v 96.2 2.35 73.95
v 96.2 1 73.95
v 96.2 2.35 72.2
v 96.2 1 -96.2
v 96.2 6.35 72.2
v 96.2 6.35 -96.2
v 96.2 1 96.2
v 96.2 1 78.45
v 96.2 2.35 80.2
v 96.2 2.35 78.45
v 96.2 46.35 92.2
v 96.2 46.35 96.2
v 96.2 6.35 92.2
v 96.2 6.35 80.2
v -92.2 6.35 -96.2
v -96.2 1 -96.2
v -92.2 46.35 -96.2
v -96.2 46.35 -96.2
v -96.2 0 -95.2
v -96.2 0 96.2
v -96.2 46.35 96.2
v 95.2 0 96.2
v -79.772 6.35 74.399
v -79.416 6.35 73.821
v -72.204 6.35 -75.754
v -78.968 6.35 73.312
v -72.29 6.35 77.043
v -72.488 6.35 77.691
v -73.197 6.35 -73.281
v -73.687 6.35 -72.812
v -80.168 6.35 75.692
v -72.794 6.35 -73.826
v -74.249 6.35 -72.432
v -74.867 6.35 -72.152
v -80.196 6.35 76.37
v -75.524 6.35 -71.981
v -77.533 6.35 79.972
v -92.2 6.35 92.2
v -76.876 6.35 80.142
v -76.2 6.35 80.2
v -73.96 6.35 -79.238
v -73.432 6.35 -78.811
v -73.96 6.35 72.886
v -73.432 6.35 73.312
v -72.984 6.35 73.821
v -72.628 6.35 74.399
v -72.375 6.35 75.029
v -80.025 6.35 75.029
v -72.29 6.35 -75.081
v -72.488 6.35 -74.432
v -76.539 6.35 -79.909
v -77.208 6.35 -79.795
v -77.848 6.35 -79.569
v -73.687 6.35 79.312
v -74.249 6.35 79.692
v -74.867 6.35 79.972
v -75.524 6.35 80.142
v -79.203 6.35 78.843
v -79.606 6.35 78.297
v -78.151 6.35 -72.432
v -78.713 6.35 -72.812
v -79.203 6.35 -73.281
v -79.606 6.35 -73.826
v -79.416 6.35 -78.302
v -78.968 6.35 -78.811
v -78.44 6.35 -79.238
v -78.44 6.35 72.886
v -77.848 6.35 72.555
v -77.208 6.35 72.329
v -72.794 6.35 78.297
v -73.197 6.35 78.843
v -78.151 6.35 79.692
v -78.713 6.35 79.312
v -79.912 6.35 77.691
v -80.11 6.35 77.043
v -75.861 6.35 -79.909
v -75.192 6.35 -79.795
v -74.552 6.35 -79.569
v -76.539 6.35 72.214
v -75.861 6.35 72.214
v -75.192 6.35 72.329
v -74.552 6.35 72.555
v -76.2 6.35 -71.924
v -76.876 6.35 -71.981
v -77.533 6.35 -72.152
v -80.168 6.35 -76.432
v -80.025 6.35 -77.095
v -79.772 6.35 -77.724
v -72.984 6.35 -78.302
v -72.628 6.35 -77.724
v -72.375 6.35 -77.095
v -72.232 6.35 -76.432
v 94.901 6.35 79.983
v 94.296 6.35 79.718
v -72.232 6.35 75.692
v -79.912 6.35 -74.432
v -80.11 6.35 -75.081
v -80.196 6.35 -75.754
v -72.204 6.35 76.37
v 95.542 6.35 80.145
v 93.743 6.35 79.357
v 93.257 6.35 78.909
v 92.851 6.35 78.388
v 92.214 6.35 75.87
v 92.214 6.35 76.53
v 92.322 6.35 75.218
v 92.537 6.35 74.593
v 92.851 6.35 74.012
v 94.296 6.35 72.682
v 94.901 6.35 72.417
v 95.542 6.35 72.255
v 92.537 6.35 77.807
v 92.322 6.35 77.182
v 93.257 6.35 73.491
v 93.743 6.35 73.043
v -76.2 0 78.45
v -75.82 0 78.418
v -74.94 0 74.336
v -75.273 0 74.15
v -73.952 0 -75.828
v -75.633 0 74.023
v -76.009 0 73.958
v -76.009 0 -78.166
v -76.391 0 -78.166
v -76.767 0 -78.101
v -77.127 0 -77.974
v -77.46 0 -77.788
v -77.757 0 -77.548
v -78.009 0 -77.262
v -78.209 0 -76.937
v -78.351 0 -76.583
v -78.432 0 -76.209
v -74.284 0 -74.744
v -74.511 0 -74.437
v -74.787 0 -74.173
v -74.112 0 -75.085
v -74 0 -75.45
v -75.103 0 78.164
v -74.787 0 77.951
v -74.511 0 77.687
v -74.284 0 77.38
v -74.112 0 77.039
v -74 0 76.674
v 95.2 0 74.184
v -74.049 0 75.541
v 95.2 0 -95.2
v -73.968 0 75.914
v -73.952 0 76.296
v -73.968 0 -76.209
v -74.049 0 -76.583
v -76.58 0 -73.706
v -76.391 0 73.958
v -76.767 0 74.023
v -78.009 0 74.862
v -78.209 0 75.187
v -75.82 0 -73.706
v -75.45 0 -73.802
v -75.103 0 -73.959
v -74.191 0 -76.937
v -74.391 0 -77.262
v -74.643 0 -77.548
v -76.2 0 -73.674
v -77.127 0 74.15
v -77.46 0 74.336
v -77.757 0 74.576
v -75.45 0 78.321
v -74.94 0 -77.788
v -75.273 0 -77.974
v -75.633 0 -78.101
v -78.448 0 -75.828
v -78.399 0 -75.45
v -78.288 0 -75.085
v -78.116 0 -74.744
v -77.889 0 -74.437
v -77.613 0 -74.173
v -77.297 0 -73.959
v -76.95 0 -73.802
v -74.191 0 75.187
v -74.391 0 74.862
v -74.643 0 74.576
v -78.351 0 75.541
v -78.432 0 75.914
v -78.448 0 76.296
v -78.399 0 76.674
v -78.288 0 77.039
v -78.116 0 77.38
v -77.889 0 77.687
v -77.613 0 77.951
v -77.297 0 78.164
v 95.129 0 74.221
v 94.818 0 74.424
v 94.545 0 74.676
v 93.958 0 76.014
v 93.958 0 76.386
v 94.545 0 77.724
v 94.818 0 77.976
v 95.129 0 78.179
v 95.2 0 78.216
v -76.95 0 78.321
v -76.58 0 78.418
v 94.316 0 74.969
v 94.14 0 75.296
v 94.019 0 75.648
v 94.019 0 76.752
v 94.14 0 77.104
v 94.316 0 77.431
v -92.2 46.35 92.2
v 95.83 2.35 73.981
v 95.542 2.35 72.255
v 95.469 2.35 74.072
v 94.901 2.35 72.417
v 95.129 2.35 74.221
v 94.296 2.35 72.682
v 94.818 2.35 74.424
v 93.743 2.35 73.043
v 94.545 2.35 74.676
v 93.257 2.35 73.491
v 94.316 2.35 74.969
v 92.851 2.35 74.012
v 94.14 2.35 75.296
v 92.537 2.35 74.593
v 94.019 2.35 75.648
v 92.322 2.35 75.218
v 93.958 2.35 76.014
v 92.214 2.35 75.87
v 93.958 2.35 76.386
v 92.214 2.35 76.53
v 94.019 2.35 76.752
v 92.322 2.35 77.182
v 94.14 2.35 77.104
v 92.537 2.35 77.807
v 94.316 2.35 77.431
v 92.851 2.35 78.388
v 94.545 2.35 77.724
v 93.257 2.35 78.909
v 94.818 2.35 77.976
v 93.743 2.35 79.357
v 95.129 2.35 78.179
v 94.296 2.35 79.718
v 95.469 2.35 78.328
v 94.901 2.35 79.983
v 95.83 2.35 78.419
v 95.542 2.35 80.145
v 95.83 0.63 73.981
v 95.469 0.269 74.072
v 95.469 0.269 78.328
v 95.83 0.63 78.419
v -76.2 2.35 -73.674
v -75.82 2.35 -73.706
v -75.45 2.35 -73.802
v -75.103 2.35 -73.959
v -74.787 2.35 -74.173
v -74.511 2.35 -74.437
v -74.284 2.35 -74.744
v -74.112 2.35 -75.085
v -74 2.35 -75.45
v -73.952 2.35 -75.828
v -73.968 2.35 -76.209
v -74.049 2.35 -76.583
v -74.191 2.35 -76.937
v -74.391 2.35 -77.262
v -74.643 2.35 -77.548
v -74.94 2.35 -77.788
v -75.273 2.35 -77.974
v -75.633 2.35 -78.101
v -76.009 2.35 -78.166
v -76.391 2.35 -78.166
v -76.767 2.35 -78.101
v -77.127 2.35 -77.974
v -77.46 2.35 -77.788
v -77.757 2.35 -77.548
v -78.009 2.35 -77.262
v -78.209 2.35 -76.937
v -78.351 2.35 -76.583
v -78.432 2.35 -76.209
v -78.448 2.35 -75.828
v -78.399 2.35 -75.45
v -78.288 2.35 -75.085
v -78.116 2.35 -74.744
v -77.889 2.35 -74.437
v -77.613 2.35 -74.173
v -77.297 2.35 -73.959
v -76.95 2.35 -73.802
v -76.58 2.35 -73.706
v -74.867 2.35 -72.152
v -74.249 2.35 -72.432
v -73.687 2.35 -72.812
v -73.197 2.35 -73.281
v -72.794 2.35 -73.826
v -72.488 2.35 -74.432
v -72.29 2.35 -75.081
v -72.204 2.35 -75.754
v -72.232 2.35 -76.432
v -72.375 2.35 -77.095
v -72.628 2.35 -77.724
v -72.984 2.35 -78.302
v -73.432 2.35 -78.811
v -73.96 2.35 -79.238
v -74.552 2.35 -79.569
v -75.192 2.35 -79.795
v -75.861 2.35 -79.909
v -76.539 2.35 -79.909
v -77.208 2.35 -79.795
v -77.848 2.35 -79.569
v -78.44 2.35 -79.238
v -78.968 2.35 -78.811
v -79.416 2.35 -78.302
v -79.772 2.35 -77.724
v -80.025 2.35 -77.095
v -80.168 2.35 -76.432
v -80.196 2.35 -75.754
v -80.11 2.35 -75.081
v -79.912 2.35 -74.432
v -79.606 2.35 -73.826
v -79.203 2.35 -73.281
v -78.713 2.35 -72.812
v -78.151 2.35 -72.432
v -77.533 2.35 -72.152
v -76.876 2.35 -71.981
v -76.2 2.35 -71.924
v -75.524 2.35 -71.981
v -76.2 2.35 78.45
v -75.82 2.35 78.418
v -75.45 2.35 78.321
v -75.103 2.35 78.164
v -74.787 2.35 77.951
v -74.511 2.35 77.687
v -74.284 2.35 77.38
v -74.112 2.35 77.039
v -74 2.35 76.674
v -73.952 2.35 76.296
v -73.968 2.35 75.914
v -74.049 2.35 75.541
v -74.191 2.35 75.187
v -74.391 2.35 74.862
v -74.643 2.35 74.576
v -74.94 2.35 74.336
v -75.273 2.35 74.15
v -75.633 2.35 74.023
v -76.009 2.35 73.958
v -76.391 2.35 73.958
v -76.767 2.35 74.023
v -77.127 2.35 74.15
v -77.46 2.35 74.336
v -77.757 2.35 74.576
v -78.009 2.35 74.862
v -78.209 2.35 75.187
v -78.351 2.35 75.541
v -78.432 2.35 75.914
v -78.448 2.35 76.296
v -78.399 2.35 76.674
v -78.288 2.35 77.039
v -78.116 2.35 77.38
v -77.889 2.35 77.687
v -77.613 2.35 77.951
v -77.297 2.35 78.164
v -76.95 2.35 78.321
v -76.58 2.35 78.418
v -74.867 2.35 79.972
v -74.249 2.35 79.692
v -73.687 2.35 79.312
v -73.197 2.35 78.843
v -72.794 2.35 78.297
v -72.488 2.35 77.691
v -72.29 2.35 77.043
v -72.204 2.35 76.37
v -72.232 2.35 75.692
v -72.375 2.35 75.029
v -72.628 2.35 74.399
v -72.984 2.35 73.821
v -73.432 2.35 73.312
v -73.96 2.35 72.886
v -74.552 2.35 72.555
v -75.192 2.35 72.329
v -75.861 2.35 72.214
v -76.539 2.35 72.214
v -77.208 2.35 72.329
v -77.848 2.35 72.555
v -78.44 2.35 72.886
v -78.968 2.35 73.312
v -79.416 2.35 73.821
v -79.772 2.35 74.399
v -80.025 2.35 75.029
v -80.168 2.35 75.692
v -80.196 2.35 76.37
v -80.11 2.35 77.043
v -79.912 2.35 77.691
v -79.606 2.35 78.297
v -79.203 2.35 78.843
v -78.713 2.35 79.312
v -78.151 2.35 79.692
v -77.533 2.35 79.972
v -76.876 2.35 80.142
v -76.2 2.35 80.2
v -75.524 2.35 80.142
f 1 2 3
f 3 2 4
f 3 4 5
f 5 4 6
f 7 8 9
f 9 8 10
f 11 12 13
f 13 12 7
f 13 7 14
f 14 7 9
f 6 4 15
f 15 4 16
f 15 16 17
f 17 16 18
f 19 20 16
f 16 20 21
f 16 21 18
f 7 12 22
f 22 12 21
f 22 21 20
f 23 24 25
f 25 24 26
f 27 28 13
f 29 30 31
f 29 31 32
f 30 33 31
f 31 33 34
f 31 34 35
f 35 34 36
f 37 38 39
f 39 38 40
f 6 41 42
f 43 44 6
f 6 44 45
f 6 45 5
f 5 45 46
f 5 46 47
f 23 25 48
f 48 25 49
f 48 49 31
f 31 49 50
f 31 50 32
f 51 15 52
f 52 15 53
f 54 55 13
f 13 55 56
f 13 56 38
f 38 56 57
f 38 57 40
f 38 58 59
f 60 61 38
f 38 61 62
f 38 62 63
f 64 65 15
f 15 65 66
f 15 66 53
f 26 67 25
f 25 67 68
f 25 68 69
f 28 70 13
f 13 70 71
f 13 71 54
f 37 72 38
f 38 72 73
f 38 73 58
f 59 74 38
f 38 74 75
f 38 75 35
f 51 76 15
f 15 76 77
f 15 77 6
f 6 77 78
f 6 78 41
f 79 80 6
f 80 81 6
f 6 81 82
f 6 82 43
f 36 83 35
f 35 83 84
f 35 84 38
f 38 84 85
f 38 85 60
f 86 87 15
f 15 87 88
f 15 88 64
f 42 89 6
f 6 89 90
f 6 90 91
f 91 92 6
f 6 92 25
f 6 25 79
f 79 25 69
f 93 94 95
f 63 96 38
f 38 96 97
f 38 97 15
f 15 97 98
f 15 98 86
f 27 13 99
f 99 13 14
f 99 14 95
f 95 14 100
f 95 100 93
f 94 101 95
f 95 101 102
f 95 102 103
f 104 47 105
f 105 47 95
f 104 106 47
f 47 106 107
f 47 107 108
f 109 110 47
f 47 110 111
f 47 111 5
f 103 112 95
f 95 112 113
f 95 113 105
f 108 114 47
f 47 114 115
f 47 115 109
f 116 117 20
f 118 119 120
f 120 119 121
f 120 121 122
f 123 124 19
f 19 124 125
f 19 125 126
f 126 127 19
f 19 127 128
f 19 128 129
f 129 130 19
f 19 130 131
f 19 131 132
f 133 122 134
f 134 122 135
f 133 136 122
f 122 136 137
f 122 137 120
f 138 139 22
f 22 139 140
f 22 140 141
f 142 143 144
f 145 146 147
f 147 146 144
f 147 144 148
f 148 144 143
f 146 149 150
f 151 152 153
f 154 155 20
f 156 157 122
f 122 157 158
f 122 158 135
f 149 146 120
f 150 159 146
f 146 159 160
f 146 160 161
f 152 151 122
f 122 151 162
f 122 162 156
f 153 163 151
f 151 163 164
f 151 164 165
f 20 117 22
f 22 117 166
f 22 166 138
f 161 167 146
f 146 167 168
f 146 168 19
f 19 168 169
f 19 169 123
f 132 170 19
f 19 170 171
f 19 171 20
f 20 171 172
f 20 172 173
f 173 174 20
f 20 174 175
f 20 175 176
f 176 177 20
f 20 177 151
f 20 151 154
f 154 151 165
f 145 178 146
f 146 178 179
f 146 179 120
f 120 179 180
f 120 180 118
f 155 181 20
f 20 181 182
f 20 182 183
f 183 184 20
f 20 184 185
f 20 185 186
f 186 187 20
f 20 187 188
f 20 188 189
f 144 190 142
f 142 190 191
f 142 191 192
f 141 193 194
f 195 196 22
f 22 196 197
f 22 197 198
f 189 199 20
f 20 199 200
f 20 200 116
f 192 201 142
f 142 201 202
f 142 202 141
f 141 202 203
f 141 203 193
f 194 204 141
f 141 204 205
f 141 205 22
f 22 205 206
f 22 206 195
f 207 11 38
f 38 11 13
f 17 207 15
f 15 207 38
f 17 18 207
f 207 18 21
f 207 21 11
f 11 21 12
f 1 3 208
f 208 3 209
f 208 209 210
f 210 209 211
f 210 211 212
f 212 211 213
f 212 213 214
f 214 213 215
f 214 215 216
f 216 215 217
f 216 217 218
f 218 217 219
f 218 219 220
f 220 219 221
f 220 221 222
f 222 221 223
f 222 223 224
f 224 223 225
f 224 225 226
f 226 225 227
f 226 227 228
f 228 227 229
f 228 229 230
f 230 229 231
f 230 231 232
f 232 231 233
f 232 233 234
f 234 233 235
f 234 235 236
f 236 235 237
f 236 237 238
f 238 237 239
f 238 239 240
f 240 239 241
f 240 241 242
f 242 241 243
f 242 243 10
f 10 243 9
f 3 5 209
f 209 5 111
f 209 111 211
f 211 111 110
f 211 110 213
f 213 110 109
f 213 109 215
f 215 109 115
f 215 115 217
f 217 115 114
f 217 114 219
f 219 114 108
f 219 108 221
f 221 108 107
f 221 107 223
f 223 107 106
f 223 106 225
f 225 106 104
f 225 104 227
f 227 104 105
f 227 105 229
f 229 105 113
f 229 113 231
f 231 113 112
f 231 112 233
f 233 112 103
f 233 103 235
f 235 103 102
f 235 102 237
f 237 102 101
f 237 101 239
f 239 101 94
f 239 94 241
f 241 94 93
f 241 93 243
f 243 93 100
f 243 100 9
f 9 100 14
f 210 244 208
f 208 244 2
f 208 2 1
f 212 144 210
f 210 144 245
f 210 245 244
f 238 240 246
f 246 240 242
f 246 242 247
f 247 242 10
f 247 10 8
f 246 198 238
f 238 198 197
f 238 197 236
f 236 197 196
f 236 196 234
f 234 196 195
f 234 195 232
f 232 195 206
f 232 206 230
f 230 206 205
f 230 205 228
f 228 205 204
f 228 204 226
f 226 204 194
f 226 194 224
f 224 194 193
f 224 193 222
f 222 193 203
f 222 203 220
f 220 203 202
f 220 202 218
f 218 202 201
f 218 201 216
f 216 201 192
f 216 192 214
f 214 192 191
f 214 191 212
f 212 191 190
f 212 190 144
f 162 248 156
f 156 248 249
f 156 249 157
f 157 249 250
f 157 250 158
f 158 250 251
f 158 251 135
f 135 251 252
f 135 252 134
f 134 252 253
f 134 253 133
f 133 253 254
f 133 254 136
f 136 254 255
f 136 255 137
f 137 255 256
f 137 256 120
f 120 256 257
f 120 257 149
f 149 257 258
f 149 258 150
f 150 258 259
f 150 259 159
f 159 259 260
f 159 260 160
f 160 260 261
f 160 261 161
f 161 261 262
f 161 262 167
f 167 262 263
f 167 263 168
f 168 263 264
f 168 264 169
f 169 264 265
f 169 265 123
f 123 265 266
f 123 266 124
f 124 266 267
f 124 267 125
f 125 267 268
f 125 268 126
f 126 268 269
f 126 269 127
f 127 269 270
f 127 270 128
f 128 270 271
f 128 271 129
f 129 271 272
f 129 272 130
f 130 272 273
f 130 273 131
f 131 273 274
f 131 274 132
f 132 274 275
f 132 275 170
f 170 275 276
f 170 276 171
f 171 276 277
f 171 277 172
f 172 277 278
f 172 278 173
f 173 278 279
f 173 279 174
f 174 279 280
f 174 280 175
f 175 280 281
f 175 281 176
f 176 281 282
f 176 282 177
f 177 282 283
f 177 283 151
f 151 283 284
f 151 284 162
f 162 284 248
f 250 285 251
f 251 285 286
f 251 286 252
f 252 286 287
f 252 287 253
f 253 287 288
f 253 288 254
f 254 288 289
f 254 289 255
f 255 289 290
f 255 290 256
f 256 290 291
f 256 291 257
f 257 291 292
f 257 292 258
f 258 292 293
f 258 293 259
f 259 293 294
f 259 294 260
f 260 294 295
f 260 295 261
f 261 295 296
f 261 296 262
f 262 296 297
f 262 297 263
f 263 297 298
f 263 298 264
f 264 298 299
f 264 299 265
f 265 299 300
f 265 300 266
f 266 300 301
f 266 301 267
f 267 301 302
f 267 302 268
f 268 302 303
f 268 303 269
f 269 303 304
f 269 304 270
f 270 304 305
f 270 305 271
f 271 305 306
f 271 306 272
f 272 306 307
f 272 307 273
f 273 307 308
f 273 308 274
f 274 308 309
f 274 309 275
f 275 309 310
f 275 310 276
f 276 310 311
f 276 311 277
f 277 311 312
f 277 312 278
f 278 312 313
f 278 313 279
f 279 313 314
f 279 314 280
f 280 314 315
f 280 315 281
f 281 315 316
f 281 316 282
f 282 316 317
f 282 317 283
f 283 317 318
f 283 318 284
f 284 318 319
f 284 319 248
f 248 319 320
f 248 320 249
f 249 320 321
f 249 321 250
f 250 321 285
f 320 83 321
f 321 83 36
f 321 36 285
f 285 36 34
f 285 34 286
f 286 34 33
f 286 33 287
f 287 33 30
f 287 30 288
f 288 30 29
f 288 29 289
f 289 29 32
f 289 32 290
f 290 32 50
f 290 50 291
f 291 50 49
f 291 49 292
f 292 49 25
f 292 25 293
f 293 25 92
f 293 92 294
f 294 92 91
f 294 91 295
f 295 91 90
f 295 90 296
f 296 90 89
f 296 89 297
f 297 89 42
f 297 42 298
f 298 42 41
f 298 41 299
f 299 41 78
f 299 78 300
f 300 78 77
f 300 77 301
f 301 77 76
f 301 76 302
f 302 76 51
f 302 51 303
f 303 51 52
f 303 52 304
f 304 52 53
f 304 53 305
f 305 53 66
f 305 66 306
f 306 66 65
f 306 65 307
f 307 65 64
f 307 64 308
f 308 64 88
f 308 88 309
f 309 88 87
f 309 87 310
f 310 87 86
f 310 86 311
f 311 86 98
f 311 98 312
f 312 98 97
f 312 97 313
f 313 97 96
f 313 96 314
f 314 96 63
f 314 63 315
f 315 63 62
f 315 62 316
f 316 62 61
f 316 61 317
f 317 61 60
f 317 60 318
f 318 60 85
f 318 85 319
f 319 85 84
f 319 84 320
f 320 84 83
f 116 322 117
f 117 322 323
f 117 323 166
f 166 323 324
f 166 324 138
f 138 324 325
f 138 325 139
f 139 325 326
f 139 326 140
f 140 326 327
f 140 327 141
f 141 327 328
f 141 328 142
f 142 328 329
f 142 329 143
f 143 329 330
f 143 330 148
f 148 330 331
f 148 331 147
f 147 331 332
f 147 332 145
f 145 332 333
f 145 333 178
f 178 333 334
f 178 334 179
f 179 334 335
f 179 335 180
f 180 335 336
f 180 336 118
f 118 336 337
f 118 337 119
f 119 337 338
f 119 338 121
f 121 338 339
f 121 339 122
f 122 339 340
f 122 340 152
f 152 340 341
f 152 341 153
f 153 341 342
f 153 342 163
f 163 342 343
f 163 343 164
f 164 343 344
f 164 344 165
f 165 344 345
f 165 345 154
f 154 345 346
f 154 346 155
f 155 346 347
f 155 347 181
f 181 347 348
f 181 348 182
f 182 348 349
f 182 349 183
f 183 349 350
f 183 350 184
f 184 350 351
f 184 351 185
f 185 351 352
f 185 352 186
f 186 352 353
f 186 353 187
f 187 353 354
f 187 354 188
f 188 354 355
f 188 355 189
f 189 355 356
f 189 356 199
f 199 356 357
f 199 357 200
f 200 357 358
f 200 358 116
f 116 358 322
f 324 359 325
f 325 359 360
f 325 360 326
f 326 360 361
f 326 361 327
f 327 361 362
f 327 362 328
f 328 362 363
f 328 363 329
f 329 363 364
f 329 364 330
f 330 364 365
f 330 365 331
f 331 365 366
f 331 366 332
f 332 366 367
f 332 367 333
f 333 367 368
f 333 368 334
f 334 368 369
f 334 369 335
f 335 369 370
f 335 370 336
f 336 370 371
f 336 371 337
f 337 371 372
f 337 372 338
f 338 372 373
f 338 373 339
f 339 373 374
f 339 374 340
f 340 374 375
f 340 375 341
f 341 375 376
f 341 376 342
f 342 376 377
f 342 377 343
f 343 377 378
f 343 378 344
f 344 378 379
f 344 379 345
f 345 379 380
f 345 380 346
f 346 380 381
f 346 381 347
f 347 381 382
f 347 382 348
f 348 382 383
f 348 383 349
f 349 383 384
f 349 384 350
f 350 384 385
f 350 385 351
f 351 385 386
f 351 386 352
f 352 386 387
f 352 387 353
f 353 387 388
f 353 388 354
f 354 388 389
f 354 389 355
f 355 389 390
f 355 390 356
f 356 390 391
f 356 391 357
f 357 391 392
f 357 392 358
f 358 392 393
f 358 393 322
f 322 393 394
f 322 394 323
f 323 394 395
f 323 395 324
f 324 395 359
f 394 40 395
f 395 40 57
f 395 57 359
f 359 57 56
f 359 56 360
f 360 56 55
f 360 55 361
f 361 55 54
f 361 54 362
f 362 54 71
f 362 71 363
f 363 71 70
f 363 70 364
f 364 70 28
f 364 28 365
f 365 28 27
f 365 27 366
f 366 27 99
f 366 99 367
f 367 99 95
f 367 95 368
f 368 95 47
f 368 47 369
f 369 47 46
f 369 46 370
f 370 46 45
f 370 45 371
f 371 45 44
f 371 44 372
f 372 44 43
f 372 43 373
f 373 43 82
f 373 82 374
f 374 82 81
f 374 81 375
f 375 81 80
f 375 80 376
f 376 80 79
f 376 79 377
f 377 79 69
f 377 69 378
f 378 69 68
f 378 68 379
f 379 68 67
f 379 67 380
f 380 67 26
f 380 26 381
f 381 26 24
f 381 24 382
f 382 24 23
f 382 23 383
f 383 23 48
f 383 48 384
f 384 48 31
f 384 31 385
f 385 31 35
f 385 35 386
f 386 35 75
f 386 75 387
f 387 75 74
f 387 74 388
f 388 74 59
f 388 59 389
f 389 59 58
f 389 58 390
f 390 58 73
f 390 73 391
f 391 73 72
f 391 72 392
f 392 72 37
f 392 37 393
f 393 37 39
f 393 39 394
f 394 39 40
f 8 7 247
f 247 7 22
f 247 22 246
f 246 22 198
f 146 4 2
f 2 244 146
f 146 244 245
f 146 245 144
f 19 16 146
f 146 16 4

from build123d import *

# Parameters (mm, degrees)
SKETCH1_W                      = 192.4
SKETCH1_H                      = 192.4
BOSS_EXTRUDE1_DEPTH            = 6.35
BOSS_EXTRUDE2_DEPTH            = 40
CBORE_FOR_M4_SHCS1_D           = 4.5
CBORE_FOR_M4_SHCS1_DEPTH       = 6.35
CBORE_FOR_M4_SHCS1_CBORE_D     = 8
CBORE_FOR_M4_SHCS1_CBORE_DEPTH = 4
CHAMFER1_SIZE                  = 1


with BuildPart() as part:
    # Sketch1 → Boss-Extrude1 (new body)
    with BuildSketch(Plane(origin=(0, 0, 0), x_dir=(1, 0, 0), z_dir=(0, 1, 0))):
        Rectangle(SKETCH1_W, SKETCH1_H)
    extrude(amount=BOSS_EXTRUDE1_DEPTH)

    # Sketch2 → Boss-Extrude2 (add)
    with BuildSketch(Plane(origin=(0, 6.35, 0), x_dir=(1, 0, 0), z_dir=(0, 1, 0))):
        Polygon((-92.2, 92.2), (-92.2, -92.2), (92.2, -92.2), (96.2, -92.2), (96.2, -96.2), (-96.2, -96.2), (-96.2, 96.2), (-92.2, 96.2), align=None)
    extrude(amount=BOSS_EXTRUDE2_DEPTH)

    # CBORE for M4 SHCS1
    with Locations(Plane(origin=(0, 6.35, 0), x_dir=(1, 0, 0), z_dir=(0, 1, 0))):
        with Locations((96.2, -76.2), (-76.2, -76.2), (-76.2, 75.92365398)):
            CounterBoreHole(CBORE_FOR_M4_SHCS1_D / 2, CBORE_FOR_M4_SHCS1_CBORE_D / 2, CBORE_FOR_M4_SHCS1_CBORE_DEPTH, depth=CBORE_FOR_M4_SHCS1_DEPTH)

    # Chamfer1
    chamfer1_edges = [part.edges().sort_by_distance(p)[0] for p in [
        (96.2, 0, -11.125),
        (0, 0, -96.2),
        (96.2, 0, 87.325),
    ]]
    chamfer(chamfer1_edges, length=CHAMFER1_SIZE)


solid = part.part
